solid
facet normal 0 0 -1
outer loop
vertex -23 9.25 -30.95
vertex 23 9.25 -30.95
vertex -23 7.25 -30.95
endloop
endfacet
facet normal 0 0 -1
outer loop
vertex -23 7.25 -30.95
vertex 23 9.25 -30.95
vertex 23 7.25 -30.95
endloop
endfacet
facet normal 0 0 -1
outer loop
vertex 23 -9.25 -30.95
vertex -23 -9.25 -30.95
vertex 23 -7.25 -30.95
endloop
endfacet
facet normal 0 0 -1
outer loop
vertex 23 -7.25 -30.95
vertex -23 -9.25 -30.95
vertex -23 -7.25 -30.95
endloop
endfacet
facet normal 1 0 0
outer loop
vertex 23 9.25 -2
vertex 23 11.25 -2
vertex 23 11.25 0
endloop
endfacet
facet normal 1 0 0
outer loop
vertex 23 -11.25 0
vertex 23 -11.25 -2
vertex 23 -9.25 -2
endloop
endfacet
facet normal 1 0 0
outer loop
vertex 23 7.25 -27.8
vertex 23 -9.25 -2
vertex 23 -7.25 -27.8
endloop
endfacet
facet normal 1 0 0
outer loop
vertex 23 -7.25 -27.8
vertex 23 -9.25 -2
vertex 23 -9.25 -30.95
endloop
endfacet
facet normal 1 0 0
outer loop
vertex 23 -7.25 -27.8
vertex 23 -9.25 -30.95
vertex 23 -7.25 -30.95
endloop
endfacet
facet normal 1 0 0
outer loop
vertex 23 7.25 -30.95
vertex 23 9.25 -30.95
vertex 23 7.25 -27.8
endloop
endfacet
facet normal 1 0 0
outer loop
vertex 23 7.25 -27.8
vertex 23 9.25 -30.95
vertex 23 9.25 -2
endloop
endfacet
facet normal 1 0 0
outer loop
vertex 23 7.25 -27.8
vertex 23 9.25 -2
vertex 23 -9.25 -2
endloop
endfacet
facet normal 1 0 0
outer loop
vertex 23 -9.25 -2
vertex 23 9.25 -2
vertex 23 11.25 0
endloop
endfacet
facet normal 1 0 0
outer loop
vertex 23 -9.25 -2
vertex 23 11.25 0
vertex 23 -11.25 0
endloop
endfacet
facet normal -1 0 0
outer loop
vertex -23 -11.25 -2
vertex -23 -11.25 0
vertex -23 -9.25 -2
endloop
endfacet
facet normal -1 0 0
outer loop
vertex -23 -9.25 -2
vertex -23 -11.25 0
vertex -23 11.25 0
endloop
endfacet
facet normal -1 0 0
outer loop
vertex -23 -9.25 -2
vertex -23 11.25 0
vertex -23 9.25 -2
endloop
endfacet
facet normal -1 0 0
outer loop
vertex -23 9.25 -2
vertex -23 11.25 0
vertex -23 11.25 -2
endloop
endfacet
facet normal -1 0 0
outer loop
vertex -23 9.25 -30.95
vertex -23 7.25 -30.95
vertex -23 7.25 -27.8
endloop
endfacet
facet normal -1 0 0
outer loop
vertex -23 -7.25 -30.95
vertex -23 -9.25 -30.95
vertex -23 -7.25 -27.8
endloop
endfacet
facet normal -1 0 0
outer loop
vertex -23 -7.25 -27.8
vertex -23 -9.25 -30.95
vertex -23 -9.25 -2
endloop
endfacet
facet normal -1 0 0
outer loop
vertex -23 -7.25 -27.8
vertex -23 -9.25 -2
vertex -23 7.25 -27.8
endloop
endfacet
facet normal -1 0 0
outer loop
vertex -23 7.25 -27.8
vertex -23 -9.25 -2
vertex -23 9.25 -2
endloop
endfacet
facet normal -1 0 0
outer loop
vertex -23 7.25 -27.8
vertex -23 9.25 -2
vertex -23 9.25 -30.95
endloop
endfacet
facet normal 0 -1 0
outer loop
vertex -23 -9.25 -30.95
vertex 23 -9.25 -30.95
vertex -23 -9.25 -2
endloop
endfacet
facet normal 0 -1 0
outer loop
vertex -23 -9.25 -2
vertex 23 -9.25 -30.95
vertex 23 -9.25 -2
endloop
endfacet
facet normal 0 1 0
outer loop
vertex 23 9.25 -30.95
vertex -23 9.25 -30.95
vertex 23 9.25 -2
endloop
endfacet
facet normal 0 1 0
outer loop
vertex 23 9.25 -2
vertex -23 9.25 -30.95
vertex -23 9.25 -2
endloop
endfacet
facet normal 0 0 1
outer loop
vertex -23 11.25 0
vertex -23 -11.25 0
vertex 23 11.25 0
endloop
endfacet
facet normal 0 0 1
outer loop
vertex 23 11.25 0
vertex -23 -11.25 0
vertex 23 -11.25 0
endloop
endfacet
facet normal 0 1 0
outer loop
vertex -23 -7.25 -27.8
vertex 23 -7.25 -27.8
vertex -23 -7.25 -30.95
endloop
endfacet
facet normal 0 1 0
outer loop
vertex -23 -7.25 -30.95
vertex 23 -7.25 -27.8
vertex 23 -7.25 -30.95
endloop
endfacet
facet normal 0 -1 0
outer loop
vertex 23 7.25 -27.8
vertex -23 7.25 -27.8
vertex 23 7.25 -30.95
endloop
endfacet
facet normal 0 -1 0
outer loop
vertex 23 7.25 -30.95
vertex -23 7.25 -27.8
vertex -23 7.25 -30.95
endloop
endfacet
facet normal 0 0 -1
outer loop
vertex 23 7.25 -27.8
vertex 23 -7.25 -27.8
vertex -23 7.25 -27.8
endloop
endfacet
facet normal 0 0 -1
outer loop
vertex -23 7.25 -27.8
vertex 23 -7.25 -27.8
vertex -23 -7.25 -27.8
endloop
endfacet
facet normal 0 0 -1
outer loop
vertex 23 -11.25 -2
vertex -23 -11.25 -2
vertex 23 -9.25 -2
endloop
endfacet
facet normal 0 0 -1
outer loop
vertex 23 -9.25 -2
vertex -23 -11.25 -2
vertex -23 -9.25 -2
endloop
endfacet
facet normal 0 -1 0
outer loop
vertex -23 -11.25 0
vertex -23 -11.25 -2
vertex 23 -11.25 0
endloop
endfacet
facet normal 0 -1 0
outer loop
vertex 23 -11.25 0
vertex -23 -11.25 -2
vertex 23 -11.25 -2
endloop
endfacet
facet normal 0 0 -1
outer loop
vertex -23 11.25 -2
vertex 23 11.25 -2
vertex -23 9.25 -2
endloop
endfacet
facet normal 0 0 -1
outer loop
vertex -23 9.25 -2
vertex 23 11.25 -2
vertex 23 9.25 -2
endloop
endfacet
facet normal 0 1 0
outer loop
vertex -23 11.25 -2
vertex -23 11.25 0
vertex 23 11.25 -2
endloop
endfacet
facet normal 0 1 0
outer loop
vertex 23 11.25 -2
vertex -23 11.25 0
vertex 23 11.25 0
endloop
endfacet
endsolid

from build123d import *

# Parameters (mm, degrees)
IZIM1_W                     = 46
IZIM1_H                     = 18.5
Y_KSEKLIK_EKSTR_ZYON1_DEPTH = 30.95
IZIM2_W                     = 46
IZIM2_H                     = 14.5
KES_EKSTR_ZYON1_DEPTH       = 3.15
IZIM3_W                     = 46
IZIM3_H                     = 2
Y_KSEKLIK_EKSTR_ZYON2_DEPTH = 2
IZIM4_W                     = 46
IZIM4_H                     = 2
Y_KSEKLIK_EKSTR_ZYON3_DEPTH = 2


with BuildPart() as part:
    # Çizim1 → Yükseklik-Ekstrüzyon1 (new body)
    with BuildSketch(Plane.XY):
        Rectangle(IZIM1_W, IZIM1_H)
    extrude(amount=-Y_KSEKLIK_EKSTR_ZYON1_DEPTH)

    # Çizim2 → Kes-Ekstrüzyon1 (cut)
    with BuildSketch(Plane(origin=(0, 0, -30.95), x_dir=(-1, 0, 0), z_dir=(0, 0, -1))):
        Rectangle(IZIM2_W, IZIM2_H)
    extrude(amount=-KES_EKSTR_ZYON1_DEPTH, mode=Mode.SUBTRACT)

    # Çizim3 → Yükseklik-Ekstrüzyon2 (add)
    with BuildSketch(Plane.XZ.offset(9.25)):
        with Locations((0, -1)):
            Rectangle(IZIM3_W, IZIM3_H)
    extrude(amount=Y_KSEKLIK_EKSTR_ZYON2_DEPTH)

    # Çizim4 → Yükseklik-Ekstrüzyon3 (add)
    with BuildSketch(Plane(origin=(0, 9.25, 0), x_dir=(1, 0, 0), z_dir=(0, 1, 0))):
        with Locations((0, 1)):
            Rectangle(IZIM4_W, IZIM4_H)
    extrude(amount=Y_KSEKLIK_EKSTR_ZYON3_DEPTH)


solid = part.part
